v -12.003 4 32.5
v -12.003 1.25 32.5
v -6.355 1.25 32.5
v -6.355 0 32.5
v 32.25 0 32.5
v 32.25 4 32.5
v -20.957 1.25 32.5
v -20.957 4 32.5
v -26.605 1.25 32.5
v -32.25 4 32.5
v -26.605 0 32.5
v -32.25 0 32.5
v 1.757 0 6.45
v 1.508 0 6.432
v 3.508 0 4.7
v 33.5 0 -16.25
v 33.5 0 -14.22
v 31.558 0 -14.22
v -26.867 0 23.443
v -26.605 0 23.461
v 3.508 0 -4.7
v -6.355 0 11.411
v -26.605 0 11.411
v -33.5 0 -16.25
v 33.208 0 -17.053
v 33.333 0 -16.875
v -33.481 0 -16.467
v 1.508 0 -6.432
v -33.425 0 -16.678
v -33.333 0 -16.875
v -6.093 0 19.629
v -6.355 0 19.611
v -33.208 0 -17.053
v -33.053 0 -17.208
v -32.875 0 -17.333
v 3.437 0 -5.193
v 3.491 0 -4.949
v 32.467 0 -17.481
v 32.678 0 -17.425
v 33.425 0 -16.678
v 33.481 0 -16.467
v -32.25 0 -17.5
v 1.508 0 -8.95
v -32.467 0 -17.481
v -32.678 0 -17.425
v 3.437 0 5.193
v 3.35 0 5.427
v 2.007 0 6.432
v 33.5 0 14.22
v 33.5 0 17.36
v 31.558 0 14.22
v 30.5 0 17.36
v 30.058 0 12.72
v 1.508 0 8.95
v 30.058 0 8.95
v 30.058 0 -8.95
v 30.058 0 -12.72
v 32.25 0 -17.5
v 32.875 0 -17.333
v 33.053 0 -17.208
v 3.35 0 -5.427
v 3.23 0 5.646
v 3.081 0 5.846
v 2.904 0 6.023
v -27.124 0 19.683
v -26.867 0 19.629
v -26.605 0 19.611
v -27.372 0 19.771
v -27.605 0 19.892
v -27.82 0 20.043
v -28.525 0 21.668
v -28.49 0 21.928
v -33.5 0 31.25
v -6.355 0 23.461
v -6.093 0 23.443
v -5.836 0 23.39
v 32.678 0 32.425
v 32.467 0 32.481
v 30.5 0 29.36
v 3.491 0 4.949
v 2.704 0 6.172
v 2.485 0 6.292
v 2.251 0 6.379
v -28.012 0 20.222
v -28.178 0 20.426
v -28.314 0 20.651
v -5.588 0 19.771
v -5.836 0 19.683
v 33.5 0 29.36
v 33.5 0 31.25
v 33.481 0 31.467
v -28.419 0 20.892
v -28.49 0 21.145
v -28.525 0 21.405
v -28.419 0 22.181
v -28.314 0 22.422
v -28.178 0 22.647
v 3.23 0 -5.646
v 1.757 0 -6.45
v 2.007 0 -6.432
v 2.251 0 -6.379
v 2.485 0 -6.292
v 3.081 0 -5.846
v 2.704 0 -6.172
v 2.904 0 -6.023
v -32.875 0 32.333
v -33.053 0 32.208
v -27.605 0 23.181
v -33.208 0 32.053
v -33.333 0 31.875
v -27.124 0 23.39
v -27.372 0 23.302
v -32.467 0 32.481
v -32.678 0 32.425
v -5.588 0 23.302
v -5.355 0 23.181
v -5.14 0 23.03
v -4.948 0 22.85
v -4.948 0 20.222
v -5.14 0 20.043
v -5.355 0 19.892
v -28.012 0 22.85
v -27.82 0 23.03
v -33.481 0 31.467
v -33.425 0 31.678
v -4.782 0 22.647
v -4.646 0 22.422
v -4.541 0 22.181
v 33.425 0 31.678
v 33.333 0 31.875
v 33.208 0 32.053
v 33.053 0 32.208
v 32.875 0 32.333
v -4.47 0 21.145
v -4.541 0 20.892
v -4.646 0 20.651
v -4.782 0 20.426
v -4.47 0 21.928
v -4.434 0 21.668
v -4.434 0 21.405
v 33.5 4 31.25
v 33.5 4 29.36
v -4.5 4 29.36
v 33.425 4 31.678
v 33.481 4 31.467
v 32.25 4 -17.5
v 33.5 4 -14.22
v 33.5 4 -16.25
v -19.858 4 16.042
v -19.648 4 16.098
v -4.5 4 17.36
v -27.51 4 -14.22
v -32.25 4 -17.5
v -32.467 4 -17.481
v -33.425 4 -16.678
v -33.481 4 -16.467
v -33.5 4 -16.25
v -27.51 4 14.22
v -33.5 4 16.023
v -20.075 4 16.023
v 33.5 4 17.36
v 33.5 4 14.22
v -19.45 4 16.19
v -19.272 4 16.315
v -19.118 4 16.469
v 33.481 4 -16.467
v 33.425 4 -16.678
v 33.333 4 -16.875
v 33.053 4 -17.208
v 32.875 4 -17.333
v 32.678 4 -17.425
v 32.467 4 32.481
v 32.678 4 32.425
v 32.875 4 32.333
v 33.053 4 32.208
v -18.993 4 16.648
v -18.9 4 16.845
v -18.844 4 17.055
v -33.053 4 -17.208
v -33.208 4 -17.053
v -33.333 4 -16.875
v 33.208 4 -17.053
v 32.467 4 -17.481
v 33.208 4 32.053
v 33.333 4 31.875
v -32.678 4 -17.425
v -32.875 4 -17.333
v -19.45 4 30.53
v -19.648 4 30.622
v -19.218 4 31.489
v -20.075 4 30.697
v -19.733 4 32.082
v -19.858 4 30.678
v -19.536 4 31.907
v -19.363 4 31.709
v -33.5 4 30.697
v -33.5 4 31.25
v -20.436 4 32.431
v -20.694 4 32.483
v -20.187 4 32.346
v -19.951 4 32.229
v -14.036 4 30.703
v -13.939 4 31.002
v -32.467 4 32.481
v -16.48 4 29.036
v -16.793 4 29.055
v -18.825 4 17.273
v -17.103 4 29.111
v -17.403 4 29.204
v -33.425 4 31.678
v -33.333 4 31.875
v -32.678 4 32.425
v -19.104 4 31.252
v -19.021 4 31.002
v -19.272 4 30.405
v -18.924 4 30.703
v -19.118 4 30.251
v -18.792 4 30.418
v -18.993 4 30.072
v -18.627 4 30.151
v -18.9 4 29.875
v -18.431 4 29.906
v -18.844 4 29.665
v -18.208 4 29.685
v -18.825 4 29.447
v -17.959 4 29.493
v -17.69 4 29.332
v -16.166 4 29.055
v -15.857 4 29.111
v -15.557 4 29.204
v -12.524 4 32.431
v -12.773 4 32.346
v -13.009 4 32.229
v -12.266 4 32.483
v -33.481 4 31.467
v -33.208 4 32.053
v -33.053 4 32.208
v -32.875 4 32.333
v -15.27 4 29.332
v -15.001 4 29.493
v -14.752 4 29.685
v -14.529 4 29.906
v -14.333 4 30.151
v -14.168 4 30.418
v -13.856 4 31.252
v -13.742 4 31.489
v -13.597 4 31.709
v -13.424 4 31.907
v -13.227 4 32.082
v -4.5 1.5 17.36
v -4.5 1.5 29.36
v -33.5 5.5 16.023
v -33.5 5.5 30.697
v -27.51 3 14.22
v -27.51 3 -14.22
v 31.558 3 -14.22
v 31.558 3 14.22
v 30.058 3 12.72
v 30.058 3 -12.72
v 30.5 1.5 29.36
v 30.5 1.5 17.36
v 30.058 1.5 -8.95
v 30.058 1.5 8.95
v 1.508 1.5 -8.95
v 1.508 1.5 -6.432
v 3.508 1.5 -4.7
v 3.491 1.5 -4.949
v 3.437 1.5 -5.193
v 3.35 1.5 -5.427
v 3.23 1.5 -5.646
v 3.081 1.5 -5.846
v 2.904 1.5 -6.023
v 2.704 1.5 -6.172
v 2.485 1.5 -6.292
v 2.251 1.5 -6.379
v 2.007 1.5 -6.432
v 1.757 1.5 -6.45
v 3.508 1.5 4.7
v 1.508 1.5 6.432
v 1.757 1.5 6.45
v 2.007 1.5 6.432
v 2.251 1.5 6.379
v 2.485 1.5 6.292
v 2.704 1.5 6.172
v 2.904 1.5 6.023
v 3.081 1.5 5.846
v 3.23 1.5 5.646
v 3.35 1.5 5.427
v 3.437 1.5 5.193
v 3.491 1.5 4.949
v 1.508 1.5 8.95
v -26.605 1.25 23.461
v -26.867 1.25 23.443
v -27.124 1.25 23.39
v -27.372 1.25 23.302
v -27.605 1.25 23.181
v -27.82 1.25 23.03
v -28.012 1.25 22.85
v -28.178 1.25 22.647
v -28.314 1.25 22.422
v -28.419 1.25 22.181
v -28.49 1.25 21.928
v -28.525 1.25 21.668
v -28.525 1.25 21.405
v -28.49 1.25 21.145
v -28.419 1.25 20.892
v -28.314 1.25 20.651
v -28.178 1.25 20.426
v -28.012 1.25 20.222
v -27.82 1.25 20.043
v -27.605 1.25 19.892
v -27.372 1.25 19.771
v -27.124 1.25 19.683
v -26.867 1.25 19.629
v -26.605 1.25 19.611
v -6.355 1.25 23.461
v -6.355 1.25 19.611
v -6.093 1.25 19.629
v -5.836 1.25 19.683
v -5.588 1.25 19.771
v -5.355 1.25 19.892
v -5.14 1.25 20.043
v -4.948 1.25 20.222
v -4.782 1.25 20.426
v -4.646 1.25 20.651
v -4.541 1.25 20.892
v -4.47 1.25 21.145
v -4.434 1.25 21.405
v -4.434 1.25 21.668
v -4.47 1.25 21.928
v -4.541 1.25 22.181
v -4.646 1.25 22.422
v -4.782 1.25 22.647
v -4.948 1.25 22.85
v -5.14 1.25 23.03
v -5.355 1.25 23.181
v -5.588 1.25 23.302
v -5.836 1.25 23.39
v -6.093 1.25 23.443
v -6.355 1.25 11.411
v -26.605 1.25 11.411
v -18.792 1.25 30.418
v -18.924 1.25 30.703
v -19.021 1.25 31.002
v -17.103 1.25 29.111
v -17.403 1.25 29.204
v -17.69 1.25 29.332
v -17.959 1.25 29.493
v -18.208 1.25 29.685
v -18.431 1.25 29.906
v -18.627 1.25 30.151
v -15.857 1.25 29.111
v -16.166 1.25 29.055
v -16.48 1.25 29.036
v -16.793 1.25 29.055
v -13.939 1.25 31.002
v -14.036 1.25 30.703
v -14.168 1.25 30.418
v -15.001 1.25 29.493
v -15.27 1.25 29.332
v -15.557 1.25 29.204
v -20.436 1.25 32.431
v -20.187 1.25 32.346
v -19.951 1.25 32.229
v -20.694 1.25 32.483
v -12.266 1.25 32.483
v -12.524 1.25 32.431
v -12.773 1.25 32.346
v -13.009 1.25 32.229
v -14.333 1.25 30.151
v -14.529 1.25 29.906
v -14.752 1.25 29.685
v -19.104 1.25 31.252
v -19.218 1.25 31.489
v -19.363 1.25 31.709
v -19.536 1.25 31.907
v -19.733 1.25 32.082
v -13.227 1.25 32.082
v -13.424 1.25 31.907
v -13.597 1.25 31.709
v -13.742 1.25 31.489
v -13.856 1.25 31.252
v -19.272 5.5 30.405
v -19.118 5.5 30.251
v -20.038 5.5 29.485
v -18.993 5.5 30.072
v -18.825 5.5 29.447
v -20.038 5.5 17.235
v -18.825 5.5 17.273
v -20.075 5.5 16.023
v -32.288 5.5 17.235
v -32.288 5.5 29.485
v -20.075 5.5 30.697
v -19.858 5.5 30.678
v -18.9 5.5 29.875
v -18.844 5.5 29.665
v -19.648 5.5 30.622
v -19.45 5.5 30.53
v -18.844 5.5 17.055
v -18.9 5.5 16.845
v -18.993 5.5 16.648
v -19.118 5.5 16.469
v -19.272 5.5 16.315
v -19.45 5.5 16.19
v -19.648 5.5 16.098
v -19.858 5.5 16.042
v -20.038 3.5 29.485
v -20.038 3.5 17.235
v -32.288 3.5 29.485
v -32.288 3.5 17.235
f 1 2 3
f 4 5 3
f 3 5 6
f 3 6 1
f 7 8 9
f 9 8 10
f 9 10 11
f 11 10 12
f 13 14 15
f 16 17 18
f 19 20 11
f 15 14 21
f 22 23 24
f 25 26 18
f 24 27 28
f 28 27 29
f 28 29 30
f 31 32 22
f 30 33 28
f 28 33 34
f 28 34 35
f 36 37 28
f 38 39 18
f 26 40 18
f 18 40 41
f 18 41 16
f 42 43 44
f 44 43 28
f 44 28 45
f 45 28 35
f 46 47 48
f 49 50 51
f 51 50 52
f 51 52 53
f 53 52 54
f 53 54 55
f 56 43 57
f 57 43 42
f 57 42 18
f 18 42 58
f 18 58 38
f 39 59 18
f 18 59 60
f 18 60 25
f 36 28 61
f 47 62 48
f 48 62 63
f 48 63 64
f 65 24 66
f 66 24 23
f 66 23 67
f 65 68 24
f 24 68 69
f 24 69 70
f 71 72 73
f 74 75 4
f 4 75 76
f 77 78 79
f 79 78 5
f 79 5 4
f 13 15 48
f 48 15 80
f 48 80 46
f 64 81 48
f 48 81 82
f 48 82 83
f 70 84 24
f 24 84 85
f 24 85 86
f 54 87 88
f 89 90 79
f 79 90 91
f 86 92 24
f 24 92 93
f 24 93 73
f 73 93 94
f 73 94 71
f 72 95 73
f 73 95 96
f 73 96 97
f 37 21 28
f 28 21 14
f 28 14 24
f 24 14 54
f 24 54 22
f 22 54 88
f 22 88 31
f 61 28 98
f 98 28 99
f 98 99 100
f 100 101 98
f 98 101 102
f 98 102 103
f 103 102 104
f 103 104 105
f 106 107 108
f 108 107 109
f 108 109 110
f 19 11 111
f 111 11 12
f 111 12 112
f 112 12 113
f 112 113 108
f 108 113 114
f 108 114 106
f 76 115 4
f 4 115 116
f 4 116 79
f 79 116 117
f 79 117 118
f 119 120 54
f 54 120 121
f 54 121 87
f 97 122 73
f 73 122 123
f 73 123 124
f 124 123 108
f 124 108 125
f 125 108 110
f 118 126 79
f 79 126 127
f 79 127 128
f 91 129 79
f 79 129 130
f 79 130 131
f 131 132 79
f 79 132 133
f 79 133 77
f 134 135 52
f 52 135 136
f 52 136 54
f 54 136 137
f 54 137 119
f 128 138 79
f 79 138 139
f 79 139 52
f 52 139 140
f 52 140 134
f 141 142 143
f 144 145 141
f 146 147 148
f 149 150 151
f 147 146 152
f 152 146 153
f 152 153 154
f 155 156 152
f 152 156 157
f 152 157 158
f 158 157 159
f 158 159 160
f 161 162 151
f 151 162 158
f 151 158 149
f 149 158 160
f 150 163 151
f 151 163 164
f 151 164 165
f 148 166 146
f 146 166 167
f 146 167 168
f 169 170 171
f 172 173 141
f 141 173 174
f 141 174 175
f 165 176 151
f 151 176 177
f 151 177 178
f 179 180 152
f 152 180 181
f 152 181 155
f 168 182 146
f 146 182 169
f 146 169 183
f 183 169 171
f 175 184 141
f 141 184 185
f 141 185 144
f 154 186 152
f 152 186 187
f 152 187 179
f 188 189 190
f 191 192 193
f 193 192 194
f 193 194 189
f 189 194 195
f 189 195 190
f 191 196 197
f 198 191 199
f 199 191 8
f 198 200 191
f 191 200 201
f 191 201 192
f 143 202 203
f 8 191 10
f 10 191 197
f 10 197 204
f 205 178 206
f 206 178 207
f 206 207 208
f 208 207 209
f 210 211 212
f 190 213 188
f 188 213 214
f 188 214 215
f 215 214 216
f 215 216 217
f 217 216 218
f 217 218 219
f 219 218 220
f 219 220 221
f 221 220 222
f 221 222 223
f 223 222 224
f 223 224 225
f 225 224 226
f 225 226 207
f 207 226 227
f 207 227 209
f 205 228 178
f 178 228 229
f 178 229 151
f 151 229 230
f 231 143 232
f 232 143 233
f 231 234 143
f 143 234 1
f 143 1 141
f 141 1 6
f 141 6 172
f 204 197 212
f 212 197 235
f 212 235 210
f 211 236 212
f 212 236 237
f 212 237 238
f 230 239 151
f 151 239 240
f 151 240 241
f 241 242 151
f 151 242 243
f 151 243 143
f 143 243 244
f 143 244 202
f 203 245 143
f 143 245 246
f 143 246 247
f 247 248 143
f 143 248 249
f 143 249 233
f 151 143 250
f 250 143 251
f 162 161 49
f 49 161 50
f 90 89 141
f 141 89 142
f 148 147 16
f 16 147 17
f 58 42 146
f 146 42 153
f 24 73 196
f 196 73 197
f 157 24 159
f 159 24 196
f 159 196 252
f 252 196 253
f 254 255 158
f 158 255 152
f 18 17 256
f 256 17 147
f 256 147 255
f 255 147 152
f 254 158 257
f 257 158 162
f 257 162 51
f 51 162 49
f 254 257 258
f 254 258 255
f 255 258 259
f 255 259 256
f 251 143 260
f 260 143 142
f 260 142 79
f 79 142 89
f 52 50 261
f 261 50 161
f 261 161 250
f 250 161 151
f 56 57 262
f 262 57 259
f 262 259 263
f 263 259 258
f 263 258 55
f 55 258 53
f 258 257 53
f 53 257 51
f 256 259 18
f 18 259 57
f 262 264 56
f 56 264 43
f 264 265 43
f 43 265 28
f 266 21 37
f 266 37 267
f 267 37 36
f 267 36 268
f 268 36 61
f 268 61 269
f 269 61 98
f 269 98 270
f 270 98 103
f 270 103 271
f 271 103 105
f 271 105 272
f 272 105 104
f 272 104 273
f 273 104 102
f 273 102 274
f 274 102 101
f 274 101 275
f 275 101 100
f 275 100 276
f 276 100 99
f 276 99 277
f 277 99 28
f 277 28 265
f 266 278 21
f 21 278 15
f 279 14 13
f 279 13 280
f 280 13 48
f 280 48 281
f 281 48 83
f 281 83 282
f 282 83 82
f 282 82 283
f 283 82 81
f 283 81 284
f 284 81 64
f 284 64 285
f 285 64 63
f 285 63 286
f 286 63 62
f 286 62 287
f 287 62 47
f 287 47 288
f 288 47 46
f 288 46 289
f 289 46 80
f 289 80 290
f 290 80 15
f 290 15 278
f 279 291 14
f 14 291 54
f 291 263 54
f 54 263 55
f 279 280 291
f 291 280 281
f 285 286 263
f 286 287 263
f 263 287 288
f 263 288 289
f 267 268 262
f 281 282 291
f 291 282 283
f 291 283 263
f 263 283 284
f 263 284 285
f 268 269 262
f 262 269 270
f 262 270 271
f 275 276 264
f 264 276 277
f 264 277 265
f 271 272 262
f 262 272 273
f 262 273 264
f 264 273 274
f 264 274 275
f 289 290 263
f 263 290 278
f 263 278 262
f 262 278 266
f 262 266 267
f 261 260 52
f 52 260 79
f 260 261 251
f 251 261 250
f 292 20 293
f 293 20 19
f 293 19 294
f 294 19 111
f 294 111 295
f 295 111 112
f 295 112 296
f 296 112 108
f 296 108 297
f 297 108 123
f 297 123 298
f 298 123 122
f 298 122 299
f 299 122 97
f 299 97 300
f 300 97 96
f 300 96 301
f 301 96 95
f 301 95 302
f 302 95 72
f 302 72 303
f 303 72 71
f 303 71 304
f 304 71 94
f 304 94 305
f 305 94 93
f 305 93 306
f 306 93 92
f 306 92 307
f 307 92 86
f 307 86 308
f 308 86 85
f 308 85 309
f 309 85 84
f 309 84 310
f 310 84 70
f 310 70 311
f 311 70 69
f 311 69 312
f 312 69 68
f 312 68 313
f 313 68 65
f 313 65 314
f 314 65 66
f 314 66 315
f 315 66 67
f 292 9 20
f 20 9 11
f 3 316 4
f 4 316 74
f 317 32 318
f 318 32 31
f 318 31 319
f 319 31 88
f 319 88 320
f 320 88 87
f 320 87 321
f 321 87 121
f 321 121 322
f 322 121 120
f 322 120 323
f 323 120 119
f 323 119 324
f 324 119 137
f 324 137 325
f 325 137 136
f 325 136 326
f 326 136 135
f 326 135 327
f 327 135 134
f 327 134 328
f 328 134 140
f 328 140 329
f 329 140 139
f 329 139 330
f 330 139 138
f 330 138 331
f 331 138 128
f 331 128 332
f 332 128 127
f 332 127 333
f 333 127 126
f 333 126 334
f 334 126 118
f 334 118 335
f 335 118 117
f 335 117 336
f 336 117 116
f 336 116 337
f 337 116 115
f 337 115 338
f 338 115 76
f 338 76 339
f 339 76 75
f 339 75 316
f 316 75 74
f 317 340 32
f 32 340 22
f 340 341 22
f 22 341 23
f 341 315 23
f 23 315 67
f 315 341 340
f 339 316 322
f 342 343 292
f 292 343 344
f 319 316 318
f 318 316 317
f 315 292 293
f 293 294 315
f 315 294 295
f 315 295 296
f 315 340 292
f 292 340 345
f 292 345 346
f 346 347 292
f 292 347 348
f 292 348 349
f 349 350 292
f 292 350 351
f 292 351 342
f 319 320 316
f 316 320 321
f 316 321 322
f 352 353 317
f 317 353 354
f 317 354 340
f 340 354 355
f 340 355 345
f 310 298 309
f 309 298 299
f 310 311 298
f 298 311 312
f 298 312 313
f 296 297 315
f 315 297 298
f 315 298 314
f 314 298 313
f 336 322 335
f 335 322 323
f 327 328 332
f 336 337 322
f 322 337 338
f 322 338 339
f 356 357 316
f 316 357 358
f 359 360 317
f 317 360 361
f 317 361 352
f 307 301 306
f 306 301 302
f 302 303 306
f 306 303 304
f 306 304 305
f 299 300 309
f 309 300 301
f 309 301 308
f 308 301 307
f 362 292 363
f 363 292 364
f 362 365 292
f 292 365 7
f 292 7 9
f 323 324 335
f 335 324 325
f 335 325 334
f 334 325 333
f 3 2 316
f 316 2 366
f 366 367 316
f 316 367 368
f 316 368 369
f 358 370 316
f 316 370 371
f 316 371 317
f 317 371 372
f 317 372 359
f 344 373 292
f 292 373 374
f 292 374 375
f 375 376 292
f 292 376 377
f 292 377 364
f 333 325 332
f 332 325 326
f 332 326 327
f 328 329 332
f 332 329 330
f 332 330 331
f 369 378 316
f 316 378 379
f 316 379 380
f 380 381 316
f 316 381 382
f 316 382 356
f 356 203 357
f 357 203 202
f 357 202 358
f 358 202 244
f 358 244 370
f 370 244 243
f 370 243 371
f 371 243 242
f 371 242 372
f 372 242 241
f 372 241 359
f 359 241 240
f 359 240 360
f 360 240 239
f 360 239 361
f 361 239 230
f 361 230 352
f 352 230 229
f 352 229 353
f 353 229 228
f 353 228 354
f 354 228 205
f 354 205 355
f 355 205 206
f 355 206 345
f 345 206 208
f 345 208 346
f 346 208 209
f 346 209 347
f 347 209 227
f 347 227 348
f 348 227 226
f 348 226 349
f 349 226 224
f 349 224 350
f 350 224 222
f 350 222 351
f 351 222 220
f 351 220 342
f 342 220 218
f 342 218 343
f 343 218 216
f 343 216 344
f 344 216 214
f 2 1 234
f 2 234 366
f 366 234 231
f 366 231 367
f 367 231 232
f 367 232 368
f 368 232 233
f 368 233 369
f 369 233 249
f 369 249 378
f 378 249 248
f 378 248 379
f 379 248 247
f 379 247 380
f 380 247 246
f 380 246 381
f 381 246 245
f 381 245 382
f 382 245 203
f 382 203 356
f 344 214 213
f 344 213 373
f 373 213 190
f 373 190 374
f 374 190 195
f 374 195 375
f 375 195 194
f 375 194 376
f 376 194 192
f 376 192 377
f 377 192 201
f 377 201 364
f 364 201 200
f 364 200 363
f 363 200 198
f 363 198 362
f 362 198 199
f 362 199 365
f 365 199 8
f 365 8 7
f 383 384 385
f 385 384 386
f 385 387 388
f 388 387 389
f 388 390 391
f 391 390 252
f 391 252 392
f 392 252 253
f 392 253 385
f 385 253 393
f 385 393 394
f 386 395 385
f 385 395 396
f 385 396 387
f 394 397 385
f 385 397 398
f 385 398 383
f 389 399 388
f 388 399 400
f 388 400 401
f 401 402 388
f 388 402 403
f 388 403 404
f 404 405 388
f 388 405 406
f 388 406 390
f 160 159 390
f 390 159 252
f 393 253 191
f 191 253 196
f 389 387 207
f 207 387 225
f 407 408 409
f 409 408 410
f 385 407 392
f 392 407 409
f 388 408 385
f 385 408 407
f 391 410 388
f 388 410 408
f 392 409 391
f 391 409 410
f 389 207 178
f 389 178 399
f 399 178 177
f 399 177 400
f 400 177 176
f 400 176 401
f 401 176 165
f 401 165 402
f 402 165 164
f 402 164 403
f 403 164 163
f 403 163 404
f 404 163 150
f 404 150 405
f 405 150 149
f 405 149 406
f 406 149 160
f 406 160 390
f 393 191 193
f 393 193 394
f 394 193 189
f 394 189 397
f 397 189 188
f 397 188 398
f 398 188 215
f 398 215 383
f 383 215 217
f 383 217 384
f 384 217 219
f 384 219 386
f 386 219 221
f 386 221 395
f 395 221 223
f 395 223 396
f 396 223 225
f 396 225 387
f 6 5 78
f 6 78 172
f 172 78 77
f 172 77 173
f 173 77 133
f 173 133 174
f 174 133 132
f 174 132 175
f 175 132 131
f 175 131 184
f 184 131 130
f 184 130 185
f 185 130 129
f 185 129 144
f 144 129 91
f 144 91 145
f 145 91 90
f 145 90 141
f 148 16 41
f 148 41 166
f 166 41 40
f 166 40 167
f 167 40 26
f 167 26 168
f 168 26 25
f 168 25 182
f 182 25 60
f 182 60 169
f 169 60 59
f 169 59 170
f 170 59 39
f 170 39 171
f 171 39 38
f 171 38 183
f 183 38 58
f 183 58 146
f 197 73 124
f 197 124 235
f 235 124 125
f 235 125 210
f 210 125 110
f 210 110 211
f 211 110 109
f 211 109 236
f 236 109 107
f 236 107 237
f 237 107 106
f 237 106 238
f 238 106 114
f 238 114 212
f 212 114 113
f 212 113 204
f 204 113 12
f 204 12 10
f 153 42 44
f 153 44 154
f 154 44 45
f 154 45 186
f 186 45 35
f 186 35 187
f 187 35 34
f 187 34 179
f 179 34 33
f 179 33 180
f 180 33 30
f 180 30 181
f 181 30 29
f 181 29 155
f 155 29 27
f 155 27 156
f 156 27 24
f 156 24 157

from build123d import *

# Parameters (mm, degrees)
SKETCH1_W               = 67
SKETCH1_H               = 35
BOSS_EXTRUDE1_DEPTH     = 4
CUT_EXTRUDE1_DEPTH      = 1
SKETCH3_W               = 67
SKETCH3_H               = 15
BOSS_EXTRUDE2_DEPTH     = 4
SKETCH4_W               = 38
SKETCH4_H               = 12
CUT_EXTRUDE2_DEPTH      = 10
SKETCH7_W               = 3.441650955
SKETCH7_H               = 28.44
CUT_EXTRUDE3_DEPTH      = 10
CHAMFER1_SIZE           = 1.5
CUT_EXTRUDE4_DEPTH      = 1.5
SKETCH5_W               = 35
SKETCH5_H               = 12
BOSS_EXTRUDE4_DEPTH     = 1.5
SKETCH9_R               = 1.925
SKETCH9_W               = 20.25
SKETCH9_H               = 20.25
CUT_EXTRUDE5_DEPTH      = 1.25
CUT_EXTRUDE6_DEPTH      = 6.6
CUT_EXTRUDE6_DEPTH_BACK = 6.6
SKETCH10_R              = 2.625
FILLET4_R               = 2
SKETCH11_W              = 12.25
SKETCH11_H              = 12.25
CUT_EXTRUDE8_DEPTH      = 0.5
SKETCH13_W              = 14.674904748
SKETCH13_H              = 14.674904748
SKETCH13_W_2            = 12.25
SKETCH13_H_2            = 12.25
BOSS_EXTRUDE5_DEPTH     = 1.5
FILLET5_R               = 1.25
FILLET6_R               = 1.25
SKETCH14_W              = 20.25
SKETCH14_H              = 1.651849009
CUT_EXTRUDE9_DEPTH      = 1.5


with BuildPart() as part:
    # Sketch1 → Boss-Extrude1 (new body)
    with BuildSketch(Plane(origin=(0, 0, 0), x_dir=(1, 0, 0), z_dir=(0, 1, 0))):
        Rectangle(SKETCH1_W, SKETCH1_H)
    extrude(amount=BOSS_EXTRUDE1_DEPTH)

    # Sketch2 → Cut-Extrude1 (cut)
    with BuildSketch(Plane(origin=(0, 4, 0), x_dir=(1, 0, 0), z_dir=(0, 1, 0))):
        Polygon((-27.51, 14.22), (27.419266745, 14.22), (33.5, 14.22), (33.5, -14.22), (30.165301507, -14.22), (-27.51, -14.22), align=None)
    extrude(amount=-CUT_EXTRUDE1_DEPTH, mode=Mode.SUBTRACT)

    # Sketch3 → Boss-Extrude2 (add)
    with BuildSketch(Plane(origin=(0, 4, 0), x_dir=(1, 0, 0), z_dir=(0, 1, 0))):
        with Locations((0, -25)):
            Rectangle(SKETCH3_W, SKETCH3_H)
    extrude(amount=-BOSS_EXTRUDE2_DEPTH)

    # Sketch4 → Cut-Extrude2 (cut)
    with BuildSketch(Plane(origin=(0, 4, 0), x_dir=(1, 0, 0), z_dir=(0, 1, 0))):
        with Locations((14.5, -23.36)):
            Rectangle(SKETCH4_W, SKETCH4_H)
    extrude(amount=-CUT_EXTRUDE2_DEPTH, mode=Mode.SUBTRACT)

    # Sketch7 → Cut-Extrude3 (cut)
    with BuildSketch(Plane(origin=(0, 3, 0), x_dir=(1, 0, 0), z_dir=(0, 1, 0))):
        with Locations((31.779174522, 0)):
            Rectangle(SKETCH7_W, SKETCH7_H)
    extrude(amount=-CUT_EXTRUDE3_DEPTH, mode=Mode.SUBTRACT)

    # Chamfer1
    chamfer1_edges = [part.edges().sort_by_distance(p)[0] for p in [
        (30.058349045, 1.5, 14.22),
        (30.058349045, 1.5, -14.22),
    ]]
    chamfer(chamfer1_edges, length=CHAMFER1_SIZE)

    # Sketch8 → Cut-Extrude4 (cut)
    with BuildSketch(Plane.XZ):
        with BuildLine():
            Line((30.058349045, 8.95), (1.508349045, 8.95))
            Line((1.508349045, 8.95), (1.508349045, 6.432050808))
            ThreePointArc((1.508349045, 6.432050808), (2.903992969, 6.022875656), (3.508349045, 4.7))
            Line((3.508349045, 4.7), (3.508349045, -4.7))
            ThreePointArc((3.508349045, -4.7), (2.903992969, -6.022875656), (1.508349045, -6.432050808))
            Line((1.508349045, -6.432050808), (1.508349045, -8.95))
            Line((1.508349045, -8.95), (30.058349045, -8.95))
            Line((30.058349045, -8.95), (30.058349045, 8.95))
        make_face()
    extrude(amount=-CUT_EXTRUDE4_DEPTH, mode=Mode.SUBTRACT)

    # Sketch5 → Boss-Extrude4 (add)
    with BuildSketch(Plane.XZ):
        with Locations((13, 23.36)):
            Rectangle(SKETCH5_W, SKETCH5_H)
    extrude(amount=-BOSS_EXTRUDE4_DEPTH)

    # Sketch9 → Cut-Extrude5 (cut)
    with BuildSketch(Plane.XZ):
        with Locations((-6.354971576, 21.536411907)):
            Circle(SKETCH9_R)
        with Locations((-26.604971576, 21.536411907)):
            Circle(SKETCH9_R)
        with Locations((-16.479971576, 21.536411907)):
            Rectangle(SKETCH9_W, SKETCH9_H)
        with BuildLine():
            ThreePointArc((-24.679971576, 21.536411907), (-25.243791022, 22.897592461), (-26.604971576, 23.461411907))
            Line((-26.604971576, 23.461411907), (-26.604971576, 19.611411907))
            ThreePointArc((-26.604971576, 19.611411907), (-25.243791022, 20.175231353), (-24.679971576, 21.536411907))
        make_face()
        with BuildLine():
            Line((-26.604971576, 19.611411907), (-26.604971576, 23.461411907))
            ThreePointArc((-26.604971576, 23.461411907), (-28.529971576, 21.536411907), (-26.604971576, 19.611411907))
        make_face()
        with BuildLine():
            ThreePointArc((-4.429971576, 21.536411907), (-4.993791022, 22.897592461), (-6.354971576, 23.461411907))
            Line((-6.354971576, 23.461411907), (-6.354971576, 19.611411907))
            ThreePointArc((-6.354971576, 19.611411907), (-4.993791022, 20.175231353), (-4.429971576, 21.536411907))
        make_face()
        with BuildLine():
            Line((-6.354971576, 19.611411907), (-6.354971576, 23.461411907))
            ThreePointArc((-6.354971576, 23.461411907), (-8.279971576, 21.536411907), (-6.354971576, 19.611411907))
        make_face()
    extrude(amount=-CUT_EXTRUDE5_DEPTH, mode=Mode.SUBTRACT)

    # Sketch10 → Cut-Extrude6 (cut, two sides: drawn at the far end of the back side and taken through both)
    with BuildSketch(Plane.XZ.offset(-1.25).offset(-CUT_EXTRUDE6_DEPTH_BACK)):
        with Locations((-16.479971576, 31.661411907)):
            Circle(SKETCH10_R)
    extrude(amount=CUT_EXTRUDE6_DEPTH + CUT_EXTRUDE6_DEPTH_BACK, mode=Mode.SUBTRACT)

    # Fillet4
    fillet4_edges = [part.edges().sort_by_distance(p)[0] for p in [
        (-18.967419065, 2, 32.5),
        (-13.992524087, 2, 32.5),
    ]]
    fillet(fillet4_edges, radius=FILLET4_R)

    # Sketch11 → Cut-Extrude8 (cut)
    with BuildSketch(Plane(origin=(0, 4, 0), x_dir=(1, 0, 0), z_dir=(0, 1, 0))):
        with Locations((-26.162547626, -23.36)):
            Rectangle(SKETCH11_W, SKETCH11_H)
    extrude(amount=-CUT_EXTRUDE8_DEPTH, mode=Mode.SUBTRACT)

    # Sketch13 → Boss-Extrude5 (add)
    with BuildSketch(Plane(origin=(0, 4, 0), x_dir=(1, 0, 0), z_dir=(0, 1, 0))):
        with Locations((-26.162547626, -23.36)):
            Rectangle(SKETCH13_W, SKETCH13_H)
        with Locations((-26.162547626, -23.36)):
            Rectangle(SKETCH13_W_2, SKETCH13_H_2, mode=Mode.SUBTRACT)
    extrude(amount=BOSS_EXTRUDE5_DEPTH)

    # Fillet5
    # the kernel refuses this fillet: 1.25 mm, written as the material it takes off along each edge
    with BuildSketch(Plane(origin=(-18.825095252, 4, 16.022547626), x_dir=(0, 0, 1), z_dir=(0, 1, 0)), Plane(origin=(-18.825095252, 4, 30.697452374), x_dir=(-1, 0, 0), z_dir=(0, 1, 0))) as fillet5_piece_1:
        with BuildLine():
            CenterArc((FILLET5_R, -FILLET5_R), FILLET5_R, 90, 90)
            Line((0, -FILLET5_R), (0, 0))
            Line((0, 0), (FILLET5_R, 0))
        make_face()
    extrude(amount=4.625, mode=Mode.SUBTRACT)

    # Fillet6
    fillet6_edges = [part.edges().sort_by_distance(p)[0] for p in [
        (-33.5, 2, 32.5),
        (33.5, 2, 32.5),
        (-33.5, 2, -17.5),
        (33.5, 2, -17.5),
    ]]
    fillet(fillet6_edges, radius=FILLET6_R)

    # Sketch14 → Cut-Extrude9 (cut)
    with BuildSketch(Plane.XZ.offset(-1.25)):
        with Locations((-16.479971576, 32.487336412)):
            Rectangle(SKETCH14_W, SKETCH14_H)
    extrude(amount=CUT_EXTRUDE9_DEPTH, mode=Mode.SUBTRACT)


solid = part.part
